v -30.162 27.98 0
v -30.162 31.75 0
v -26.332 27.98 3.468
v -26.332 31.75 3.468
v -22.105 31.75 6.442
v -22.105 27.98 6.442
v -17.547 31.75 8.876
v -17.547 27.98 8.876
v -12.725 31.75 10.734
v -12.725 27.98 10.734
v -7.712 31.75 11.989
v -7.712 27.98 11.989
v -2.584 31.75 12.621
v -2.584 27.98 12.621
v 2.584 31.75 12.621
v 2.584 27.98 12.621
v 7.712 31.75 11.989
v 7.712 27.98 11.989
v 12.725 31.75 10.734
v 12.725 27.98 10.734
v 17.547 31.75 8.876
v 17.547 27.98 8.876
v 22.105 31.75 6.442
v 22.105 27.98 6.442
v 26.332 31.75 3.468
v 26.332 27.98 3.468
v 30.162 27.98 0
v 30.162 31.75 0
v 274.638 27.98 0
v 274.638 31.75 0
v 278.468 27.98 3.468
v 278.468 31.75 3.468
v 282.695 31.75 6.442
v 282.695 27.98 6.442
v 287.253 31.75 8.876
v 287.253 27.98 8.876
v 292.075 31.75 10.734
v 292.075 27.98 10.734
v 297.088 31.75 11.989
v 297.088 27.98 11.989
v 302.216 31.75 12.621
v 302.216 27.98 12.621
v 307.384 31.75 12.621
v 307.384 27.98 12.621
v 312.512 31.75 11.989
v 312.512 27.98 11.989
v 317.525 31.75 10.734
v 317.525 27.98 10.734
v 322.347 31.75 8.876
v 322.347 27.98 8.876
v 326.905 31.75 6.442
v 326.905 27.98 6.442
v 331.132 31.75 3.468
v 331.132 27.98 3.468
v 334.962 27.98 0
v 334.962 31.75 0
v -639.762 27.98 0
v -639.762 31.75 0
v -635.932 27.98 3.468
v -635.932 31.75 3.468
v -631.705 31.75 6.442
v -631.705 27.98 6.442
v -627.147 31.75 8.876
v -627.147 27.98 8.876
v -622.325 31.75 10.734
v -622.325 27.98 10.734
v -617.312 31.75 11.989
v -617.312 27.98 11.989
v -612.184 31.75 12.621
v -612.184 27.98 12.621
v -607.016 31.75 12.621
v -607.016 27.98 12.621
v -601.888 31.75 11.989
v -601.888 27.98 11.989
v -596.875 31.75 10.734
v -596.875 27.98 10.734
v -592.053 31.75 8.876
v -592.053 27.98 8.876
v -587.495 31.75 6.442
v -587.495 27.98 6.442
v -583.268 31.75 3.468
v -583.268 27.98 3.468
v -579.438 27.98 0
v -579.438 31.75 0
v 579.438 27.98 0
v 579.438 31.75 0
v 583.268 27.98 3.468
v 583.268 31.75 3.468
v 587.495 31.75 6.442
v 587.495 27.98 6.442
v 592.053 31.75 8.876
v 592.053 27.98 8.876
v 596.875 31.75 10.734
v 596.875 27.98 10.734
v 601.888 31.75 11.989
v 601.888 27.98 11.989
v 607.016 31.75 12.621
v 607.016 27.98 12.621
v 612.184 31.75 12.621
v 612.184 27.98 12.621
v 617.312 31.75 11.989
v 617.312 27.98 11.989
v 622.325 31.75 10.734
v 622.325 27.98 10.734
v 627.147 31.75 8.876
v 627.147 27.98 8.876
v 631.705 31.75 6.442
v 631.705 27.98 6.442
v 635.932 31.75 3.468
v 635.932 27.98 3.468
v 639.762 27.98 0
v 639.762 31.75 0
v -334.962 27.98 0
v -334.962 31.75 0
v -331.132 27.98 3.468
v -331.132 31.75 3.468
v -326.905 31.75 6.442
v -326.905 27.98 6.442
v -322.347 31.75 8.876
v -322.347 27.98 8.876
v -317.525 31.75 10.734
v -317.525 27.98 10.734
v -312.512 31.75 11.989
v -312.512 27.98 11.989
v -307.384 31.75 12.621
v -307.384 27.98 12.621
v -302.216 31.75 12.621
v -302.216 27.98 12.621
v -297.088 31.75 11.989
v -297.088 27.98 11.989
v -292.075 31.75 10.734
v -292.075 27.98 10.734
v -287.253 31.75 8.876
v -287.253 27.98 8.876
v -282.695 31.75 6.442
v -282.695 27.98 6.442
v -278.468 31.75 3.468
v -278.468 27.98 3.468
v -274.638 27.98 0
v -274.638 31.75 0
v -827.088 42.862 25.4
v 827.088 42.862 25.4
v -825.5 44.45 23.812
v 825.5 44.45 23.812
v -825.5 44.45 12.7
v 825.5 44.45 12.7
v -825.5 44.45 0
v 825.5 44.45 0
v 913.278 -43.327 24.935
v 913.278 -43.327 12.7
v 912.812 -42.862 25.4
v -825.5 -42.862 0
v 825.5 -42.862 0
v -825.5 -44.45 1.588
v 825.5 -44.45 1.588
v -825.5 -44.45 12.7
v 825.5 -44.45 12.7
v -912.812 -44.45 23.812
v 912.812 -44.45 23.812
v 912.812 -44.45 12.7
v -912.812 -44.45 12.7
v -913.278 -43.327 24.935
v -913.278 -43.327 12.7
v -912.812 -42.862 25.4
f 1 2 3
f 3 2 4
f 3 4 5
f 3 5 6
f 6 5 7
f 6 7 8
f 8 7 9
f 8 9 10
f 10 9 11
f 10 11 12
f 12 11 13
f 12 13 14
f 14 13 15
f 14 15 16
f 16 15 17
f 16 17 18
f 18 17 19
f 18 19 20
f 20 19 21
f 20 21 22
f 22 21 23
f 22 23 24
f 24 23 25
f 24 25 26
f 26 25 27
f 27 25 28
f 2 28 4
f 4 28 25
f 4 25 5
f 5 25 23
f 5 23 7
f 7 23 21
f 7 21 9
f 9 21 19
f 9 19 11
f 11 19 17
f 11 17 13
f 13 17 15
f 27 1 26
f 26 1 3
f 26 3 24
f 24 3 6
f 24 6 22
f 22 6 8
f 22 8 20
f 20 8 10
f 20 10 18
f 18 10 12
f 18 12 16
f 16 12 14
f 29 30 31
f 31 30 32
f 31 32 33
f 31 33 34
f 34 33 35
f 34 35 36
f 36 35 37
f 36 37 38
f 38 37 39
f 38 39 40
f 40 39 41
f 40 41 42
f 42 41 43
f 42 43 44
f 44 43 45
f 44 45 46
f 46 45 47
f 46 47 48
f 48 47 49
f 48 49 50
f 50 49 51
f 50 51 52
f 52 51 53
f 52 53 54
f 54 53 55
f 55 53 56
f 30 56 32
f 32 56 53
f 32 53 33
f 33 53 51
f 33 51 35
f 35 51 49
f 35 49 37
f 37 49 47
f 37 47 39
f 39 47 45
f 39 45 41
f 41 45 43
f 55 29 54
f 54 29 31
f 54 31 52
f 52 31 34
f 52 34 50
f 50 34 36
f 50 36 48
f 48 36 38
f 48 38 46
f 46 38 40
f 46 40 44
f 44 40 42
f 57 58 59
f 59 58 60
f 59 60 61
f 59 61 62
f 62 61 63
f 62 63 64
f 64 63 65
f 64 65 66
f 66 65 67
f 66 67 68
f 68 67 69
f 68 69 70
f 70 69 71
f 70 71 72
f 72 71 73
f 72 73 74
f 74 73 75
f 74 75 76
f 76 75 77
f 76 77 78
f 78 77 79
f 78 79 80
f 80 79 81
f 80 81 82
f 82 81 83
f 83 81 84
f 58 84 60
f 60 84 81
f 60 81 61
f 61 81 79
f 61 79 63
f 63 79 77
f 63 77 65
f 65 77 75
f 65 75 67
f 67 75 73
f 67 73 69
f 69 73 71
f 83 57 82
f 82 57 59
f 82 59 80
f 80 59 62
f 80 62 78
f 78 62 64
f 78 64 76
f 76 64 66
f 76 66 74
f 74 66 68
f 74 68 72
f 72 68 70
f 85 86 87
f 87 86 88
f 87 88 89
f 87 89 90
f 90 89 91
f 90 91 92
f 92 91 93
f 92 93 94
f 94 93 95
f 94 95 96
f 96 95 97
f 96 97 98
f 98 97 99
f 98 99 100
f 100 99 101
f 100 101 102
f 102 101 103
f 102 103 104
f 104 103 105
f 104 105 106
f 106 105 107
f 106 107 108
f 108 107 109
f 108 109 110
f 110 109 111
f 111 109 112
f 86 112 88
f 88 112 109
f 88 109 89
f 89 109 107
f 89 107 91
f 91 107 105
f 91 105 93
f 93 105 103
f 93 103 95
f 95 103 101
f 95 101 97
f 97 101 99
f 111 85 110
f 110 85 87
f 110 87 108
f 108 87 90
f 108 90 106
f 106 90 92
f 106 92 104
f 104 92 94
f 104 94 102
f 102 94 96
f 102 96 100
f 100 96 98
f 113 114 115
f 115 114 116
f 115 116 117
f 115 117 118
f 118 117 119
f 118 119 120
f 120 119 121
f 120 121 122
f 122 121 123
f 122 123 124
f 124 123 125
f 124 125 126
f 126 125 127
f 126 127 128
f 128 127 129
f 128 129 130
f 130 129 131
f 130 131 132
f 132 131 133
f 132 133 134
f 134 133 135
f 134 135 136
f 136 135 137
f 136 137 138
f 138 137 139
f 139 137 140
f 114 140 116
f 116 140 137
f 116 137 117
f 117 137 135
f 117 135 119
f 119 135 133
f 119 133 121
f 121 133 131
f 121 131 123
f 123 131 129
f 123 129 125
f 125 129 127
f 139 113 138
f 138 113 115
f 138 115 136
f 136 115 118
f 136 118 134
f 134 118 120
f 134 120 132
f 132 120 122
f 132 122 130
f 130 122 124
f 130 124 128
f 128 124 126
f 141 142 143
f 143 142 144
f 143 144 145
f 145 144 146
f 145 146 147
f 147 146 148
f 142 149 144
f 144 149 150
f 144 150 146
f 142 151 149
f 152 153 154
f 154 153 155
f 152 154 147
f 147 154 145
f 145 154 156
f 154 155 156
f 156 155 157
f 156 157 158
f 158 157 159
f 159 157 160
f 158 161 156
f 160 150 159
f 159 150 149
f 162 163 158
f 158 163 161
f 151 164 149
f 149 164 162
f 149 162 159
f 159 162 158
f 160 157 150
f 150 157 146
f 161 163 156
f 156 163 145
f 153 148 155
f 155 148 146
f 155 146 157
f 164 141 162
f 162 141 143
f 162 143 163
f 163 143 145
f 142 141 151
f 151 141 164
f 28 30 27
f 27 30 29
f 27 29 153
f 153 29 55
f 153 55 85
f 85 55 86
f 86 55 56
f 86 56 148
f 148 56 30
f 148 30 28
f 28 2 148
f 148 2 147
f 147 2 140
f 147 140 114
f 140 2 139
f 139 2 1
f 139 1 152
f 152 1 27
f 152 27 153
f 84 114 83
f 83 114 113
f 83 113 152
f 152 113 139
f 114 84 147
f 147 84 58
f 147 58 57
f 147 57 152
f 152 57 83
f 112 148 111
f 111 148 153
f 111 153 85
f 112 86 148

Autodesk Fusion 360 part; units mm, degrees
sketch "Sketch1" plane through (0, 0, 0) normal (0, 0, 1) x (1, 0, 0)
  line L0 (914.4, 44.45) -> (914.4, -44.45) construction
  line L1 (914.4, -44.45) -> (-914.4, -44.45)
  line L2 (-914.4, -44.45) -> (-914.4, 44.45) construction
  line L3 (-914.4, 44.45) -> (914.4, -44.45) construction
  line L4 (914.4, 44.45) -> (-914.4, -44.45) construction
  line L5 (-914.4, -44.45) -> (-825.5, 44.45)
  line L6 (914.4, -44.45) -> (825.5, 44.45)
  line L7 (-914.4, 44.45) -> (-825.5, 44.45) construction
  line L8 (825.5, 44.45) -> (914.4, 44.45) construction
  line L9 (-825.5, 44.45) -> (825.5, 44.45)
  line L10 (0, 0) -> (0, -44.45) construction
  dimension "d27" = 1828.8
  dimension "d40" = 45
  dimension "d41" = 45
  dimension "d42" = 88.9
extrude "Extrude1" add sketch "Sketch1" along normal blind 25.4
sketch "Sketch9" plane through (0, 0, 0) normal (0, 0, 1) x (-1, 0, 0)
  line L0 (825.5, -44.45) -> (914.4, 44.45)
  line L1 (914.4, 44.45) -> (-914.4, 44.45)
  line L2 (-914.4, 44.45) -> (-825.5, -44.45)
  line L3 (914.4, 44.45) -> (825.5, -44.45)
  line L4 (825.5, -44.45) -> (825.5, 44.45)
  line L5 (825.5, 44.45) -> (914.4, 44.45)
  line L6 (-825.5, -44.45) -> (-914.4, 44.45)
  line L7 (-825.5, -44.45) -> (-825.5, 44.45)
  line L8 (-825.5, 44.45) -> (-914.4, 44.45)
  line L9 (-825.5, -44.45) -> (825.5, -44.45)
  line L10 (-825.5, -44.45) -> (-914.4, 44.45)
  line L11 (-914.4, 44.45) -> (914.4, 44.45)
  line L12 (914.4, 44.45) -> (825.5, -44.45)
  line L13 (825.5, -44.45) -> (-825.5, -44.45)
extrude "Extrude8" cut sketch "Sketch9" along normal blind 12.7 contours L0 L1 L3 L4 L5 L11 L12 | L1 L2 L6 L7 L8 L10 L11
chamfer "Chamfer2" distance 1.5875 angle 45 5 edges at (0, -44.45, 25.4) (0, -44.45, 0) (0, 44.45, 25.4) (914.4, -44.45, 19.05) (-914.4, -44.45, 19.05)
sketch "Sketch11" plane through (0, 44.45, 0) normal (0, 1, 0) x (-1, 0, 0)
  line L0 (825.5, 23.8125) -> (-825.5, 23.8125)
  line L1 (-825.5, 23.8125) -> (-825.5, 12.7)
  line L2 (-825.5, 12.7) -> (-825.5, 0)
  line L3 (-825.5, 0) -> (825.5, 0)
  line L4 (825.5, 0) -> (825.5, 12.7)
  line L5 (825.5, 12.7) -> (825.5, 23.8125)
  line L6 (0, 0) -> (30.1625, 0)
  line L7 (0, 0) -> (-30.1625, 0)
  line L8 (0, 0) -> (0, 12.7) construction
  arc A0 (30.1625, 0) -> (-30.1625, 0) centre (0, -29.468) ccw
  line L9 (-609.6, 0) -> (-609.6, 12.7) construction
  line L10 (-609.6, 0) -> (-579.4375, 0)
  line L11 (-609.6, 0) -> (-639.7625, 0)
  arc A1 (-579.4375, 0) -> (-639.7625, 0) centre (-609.6, -29.468) ccw
  line L12 (-304.8, 0) -> (-304.8, 12.7) construction
  line L13 (-304.8, 0) -> (-274.6375, 0)
  line L14 (-304.8, 0) -> (-334.9625, 0)
  arc A2 (-274.6375, 0) -> (-334.9625, 0) centre (-304.8, -29.468) ccw
  line L15 (304.8, 0) -> (304.8, 12.7) construction
  line L16 (304.8, 0) -> (334.9625, 0)
  line L17 (304.8, 0) -> (274.6375, 0)
  arc A3 (334.9625, 0) -> (274.6375, 0) centre (304.8, -29.468) ccw
  line L18 (609.6, 0) -> (609.6, 12.7) construction
  line L19 (609.6, 0) -> (639.7625, 0)
  line L20 (609.6, 0) -> (579.4375, 0)
  arc A4 (639.7625, 0) -> (579.4375, 0) centre (609.6, -29.468) ccw
  point P0 (-609.6, 0)
  point P1 (-304.8, 0)
  point P2 (304.8, 0)
  point P3 (609.6, 0)
  dimension "d59" = 60.325
  dimension "d60" = 12.7
  dimension "d63" = 304.8
  dimension "d64" = 0
extrude "Extrude10" cut sketch "Sketch11" against normal blind 3.7703 from surface at -12.7 contours L3 L19 L20 A4 | L3 L10 L11 A1 | L3 L16 L17 A3 | L3 L13 L14 A2 | L3 L6 L7 A0
equation "d59 = 2 in + ( 3 / 8 ) * 1 in"
equation "d66 = ( -19 / 128 ) * 1 in"
